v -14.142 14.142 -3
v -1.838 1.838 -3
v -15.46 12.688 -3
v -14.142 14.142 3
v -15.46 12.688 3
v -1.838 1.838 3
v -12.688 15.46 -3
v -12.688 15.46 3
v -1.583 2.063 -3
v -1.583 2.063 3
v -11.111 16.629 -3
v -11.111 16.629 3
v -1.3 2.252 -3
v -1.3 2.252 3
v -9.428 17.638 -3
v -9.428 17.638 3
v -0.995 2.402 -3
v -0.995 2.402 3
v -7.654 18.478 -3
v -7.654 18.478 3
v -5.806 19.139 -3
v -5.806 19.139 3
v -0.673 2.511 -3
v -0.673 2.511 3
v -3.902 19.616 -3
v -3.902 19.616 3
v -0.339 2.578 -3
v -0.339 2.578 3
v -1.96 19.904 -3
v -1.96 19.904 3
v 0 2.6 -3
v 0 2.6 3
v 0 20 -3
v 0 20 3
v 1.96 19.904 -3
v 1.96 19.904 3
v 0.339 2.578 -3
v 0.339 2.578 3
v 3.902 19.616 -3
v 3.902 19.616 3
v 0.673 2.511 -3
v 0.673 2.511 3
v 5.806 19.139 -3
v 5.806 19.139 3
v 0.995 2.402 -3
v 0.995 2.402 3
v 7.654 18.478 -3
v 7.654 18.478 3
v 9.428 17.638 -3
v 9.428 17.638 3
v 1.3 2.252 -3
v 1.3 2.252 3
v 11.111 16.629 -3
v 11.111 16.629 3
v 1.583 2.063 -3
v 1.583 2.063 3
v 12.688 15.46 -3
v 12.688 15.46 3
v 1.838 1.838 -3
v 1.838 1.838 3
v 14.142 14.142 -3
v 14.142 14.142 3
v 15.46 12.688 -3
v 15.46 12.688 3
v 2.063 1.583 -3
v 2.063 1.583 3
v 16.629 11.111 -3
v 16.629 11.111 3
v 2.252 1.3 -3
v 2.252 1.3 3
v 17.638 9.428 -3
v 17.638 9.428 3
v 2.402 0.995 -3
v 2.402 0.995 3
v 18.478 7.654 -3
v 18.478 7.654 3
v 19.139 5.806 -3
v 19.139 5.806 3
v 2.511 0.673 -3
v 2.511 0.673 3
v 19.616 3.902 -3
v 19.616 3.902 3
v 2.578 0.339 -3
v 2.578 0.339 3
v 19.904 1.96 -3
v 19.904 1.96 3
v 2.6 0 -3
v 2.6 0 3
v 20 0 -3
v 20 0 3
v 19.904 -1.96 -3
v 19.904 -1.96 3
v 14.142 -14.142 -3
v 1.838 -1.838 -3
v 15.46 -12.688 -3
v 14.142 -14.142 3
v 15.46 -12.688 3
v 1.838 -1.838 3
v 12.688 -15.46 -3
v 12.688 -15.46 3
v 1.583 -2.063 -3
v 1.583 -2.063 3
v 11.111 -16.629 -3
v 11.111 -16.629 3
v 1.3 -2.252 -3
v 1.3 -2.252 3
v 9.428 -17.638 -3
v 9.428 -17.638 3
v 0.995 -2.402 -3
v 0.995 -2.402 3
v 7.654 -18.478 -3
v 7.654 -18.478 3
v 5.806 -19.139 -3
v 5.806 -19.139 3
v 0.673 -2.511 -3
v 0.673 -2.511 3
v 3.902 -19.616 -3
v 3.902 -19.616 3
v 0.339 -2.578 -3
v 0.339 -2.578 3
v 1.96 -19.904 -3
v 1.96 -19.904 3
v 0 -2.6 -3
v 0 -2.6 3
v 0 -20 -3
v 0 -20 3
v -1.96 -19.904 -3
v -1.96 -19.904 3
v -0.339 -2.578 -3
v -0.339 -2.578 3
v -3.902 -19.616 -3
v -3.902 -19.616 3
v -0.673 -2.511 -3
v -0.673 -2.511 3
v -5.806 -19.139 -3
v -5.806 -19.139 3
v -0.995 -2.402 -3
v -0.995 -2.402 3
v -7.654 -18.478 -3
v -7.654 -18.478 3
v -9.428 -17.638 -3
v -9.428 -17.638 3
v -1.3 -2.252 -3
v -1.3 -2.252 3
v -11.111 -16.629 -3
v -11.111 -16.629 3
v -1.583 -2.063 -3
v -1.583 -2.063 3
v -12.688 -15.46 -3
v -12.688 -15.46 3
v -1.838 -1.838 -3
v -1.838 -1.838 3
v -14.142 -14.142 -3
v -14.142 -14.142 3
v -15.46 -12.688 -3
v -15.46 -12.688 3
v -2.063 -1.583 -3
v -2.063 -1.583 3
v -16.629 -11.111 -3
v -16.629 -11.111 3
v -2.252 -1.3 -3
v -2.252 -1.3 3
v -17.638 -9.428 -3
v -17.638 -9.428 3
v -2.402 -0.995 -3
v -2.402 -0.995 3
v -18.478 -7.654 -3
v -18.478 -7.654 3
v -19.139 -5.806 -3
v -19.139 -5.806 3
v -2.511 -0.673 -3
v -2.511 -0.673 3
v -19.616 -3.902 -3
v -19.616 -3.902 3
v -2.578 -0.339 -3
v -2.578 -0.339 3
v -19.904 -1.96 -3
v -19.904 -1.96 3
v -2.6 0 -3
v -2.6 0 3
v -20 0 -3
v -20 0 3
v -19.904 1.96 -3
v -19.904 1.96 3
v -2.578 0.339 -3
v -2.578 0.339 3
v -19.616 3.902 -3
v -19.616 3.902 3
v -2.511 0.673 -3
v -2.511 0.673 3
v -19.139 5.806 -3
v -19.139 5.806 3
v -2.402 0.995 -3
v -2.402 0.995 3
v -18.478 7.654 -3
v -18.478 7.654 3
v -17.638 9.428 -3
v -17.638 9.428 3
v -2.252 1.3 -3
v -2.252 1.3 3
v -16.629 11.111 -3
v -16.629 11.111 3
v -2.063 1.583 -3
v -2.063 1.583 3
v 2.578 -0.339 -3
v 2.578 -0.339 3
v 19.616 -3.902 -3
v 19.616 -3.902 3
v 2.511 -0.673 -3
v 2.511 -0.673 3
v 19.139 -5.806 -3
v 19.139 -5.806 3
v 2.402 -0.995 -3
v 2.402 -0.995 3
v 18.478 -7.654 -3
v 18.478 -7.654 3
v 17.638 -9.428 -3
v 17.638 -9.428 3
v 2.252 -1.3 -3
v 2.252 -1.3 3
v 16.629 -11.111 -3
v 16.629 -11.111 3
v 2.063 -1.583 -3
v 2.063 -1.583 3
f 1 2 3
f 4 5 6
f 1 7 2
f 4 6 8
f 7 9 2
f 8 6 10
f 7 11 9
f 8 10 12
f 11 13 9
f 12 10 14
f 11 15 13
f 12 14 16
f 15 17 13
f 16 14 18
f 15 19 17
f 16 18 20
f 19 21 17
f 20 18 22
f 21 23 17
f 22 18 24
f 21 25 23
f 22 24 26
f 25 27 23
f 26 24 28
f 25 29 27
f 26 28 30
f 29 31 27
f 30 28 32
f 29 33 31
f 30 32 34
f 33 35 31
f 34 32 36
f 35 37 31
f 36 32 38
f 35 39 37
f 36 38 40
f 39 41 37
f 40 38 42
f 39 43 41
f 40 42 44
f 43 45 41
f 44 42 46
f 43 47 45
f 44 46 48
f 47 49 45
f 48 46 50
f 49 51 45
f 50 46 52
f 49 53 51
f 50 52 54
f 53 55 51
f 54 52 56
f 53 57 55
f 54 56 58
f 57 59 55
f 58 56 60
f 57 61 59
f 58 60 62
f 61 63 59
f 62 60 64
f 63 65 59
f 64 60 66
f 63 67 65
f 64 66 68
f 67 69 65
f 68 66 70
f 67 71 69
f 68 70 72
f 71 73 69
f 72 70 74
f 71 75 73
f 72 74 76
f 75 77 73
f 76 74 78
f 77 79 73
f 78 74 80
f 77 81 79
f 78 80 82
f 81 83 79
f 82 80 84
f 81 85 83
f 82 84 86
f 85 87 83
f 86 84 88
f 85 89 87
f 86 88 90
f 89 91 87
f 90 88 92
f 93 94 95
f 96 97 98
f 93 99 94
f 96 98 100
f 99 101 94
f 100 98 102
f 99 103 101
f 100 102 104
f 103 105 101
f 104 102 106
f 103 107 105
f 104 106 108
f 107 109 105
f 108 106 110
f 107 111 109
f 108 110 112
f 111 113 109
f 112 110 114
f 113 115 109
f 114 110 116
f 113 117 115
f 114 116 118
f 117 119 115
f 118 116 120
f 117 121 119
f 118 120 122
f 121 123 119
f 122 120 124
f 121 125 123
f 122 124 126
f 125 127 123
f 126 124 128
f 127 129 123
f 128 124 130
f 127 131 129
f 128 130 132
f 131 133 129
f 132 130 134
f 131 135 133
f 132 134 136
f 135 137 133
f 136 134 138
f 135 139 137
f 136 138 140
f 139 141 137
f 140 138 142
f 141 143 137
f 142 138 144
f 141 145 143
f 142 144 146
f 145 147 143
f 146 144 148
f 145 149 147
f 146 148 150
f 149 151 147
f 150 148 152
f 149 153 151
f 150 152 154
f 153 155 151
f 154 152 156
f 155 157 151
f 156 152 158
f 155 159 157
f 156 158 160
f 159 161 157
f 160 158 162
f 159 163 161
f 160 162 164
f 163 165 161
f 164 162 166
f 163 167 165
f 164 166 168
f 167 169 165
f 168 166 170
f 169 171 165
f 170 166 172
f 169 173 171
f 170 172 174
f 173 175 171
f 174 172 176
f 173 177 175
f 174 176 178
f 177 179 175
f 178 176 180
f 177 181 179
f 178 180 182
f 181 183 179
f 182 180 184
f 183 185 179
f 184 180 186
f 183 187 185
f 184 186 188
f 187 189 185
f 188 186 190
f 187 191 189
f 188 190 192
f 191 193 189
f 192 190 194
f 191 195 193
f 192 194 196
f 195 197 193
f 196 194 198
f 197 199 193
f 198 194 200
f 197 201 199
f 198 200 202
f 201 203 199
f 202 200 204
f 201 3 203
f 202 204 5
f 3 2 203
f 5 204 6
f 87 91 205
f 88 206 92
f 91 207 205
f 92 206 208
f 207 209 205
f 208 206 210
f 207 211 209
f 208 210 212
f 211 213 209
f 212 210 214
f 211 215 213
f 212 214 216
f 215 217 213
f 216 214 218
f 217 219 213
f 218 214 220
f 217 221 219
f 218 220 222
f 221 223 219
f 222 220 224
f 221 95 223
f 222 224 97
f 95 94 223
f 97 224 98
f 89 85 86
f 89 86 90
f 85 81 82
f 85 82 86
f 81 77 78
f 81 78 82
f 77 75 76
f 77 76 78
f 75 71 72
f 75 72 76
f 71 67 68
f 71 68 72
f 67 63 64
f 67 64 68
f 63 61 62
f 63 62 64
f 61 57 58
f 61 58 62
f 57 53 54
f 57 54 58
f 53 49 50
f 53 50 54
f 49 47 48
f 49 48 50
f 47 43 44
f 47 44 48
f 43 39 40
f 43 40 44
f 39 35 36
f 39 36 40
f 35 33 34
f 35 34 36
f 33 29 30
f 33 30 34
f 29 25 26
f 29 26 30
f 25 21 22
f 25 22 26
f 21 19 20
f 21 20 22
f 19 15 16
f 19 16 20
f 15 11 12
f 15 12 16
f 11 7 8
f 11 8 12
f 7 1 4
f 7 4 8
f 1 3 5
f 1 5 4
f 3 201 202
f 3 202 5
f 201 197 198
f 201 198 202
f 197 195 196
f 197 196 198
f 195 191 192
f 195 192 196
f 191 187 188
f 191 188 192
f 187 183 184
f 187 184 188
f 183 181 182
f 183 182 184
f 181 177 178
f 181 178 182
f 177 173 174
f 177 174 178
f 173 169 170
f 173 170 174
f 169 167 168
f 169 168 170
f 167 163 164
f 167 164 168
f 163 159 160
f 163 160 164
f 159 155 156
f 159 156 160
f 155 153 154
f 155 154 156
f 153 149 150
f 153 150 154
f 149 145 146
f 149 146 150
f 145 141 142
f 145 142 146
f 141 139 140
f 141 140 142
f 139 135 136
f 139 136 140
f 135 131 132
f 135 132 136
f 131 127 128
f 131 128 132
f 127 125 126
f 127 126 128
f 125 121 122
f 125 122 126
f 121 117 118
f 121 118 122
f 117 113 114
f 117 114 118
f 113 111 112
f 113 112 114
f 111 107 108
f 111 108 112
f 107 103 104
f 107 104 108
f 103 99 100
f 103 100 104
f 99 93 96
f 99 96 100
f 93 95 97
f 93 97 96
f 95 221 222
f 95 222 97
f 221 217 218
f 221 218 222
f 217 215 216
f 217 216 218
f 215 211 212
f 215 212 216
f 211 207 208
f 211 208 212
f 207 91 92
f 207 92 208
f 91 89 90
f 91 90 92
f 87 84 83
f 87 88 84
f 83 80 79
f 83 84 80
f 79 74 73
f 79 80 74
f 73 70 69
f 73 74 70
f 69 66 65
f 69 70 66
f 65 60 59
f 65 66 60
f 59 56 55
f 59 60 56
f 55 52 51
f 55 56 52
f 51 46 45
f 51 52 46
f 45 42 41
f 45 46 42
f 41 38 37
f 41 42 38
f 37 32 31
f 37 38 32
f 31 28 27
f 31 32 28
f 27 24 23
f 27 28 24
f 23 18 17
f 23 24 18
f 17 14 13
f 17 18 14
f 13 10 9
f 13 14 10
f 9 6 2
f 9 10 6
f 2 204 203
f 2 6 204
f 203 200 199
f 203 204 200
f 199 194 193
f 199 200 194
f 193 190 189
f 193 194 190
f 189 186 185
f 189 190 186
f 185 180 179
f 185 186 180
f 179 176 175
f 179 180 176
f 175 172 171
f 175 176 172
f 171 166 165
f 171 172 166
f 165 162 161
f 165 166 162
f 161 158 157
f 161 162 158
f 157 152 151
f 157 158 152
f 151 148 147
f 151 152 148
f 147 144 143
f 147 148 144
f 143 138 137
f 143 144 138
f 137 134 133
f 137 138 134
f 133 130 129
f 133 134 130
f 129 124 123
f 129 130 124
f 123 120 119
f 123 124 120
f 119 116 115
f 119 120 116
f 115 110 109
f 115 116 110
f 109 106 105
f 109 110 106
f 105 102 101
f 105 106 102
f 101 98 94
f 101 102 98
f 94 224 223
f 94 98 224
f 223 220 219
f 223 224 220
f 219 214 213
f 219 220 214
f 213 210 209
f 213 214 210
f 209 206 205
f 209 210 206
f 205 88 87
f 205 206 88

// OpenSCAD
polyhedron(points=[[-14.142136, 14.142136, -3.0], [-15.460209, 12.687866, -3.0], [-1.838478, 1.838478, -3.0], [-14.142136, 14.142136, 3.0], [-15.460209, 12.687866, 3.0], [-1.838478, 1.838478, 3.0], [-12.687866, 15.460209, -3.0], [-12.687866, 15.460209, 3.0], [-1.58278, 2.062719, -3.0], [-1.58278, 2.062719, 3.0], [-11.111405, 16.629392, -3.0], [-11.111405, 16.629392, 3.0], [-1.3, 2.251666, -3.0], [-1.3, 2.251666, 3.0], [-9.427935, 17.638425, -3.0], [-9.427935, 17.638425, 3.0], [-0.994977, 2.402087, -3.0], [-0.994977, 2.402087, 3.0], [-7.653669, 18.477591, -3.0], [-7.653669, 18.477591, 3.0], [-5.805694, 19.138807, -3.0], [-5.805694, 19.138807, 3.0], [-0.67293, 2.511407, -3.0], [-0.67293, 2.511407, 3.0], [-3.901806, 19.615706, -3.0], [-3.901806, 19.615706, 3.0], [-0.339368, 2.577757, -3.0], [-0.339368, 2.577757, 3.0], [-1.960343, 19.903695, -3.0], [-1.960343, 19.903695, 3.0], [0.0, 2.6, -3.0], [0.0, 2.6, 3.0], [0.0, 20.0, -3.0], [0.0, 20.0, 3.0], [1.960343, 19.903695, -3.0], [1.960343, 19.903695, 3.0], [0.339368, 2.577757, -3.0], [0.339368, 2.577757, 3.0], [3.901806, 19.615706, -3.0], [3.901806, 19.615706, 3.0], [0.67293, 2.511407, -3.0], [0.67293, 2.511407, 3.0], [5.805694, 19.138807, -3.0], [5.805694, 19.138807, 3.0], [0.994977, 2.402087, -3.0], [0.994977, 2.402087, 3.0], [7.653669, 18.477591, -3.0], [7.653669, 18.477591, 3.0], [9.427935, 17.638425, -3.0], [9.427935, 17.638425, 3.0], [1.3, 2.251666, -3.0], [1.3, 2.251666, 3.0], [11.111405, 16.629392, -3.0], [11.111405, 16.629392, 3.0], [1.58278, 2.062719, -3.0], [1.58278, 2.062719, 3.0], [12.687866, 15.460209, -3.0], [12.687866, 15.460209, 3.0], [1.838478, 1.838478, -3.0], [1.838478, 1.838478, 3.0], [14.142136, 14.142136, -3.0], [14.142136, 14.142136, 3.0], [15.460209, 12.687866, -3.0], [15.460209, 12.687866, 3.0], [2.062719, 1.58278, -3.0], [2.062719, 1.58278, 3.0], [16.629392, 11.111405, -3.0], [16.629392, 11.111405, 3.0], [2.251666, 1.3, -3.0], [2.251666, 1.3, 3.0], [17.638425, 9.427935, -3.0], [17.638425, 9.427935, 3.0], [2.402087, 0.994977, -3.0], [2.402087, 0.994977, 3.0], [18.477591, 7.653669, -3.0], [18.477591, 7.653669, 3.0], [19.138807, 5.805694, -3.0], [19.138807, 5.805694, 3.0], [2.511407, 0.67293, -3.0], [2.511407, 0.67293, 3.0], [19.615706, 3.901806, -3.0], [19.615706, 3.901806, 3.0], [2.577757, 0.339368, -3.0], [2.577757, 0.339368, 3.0], [19.903695, 1.960343, -3.0], [19.903695, 1.960343, 3.0], [2.6, 0.0, -3.0], [2.6, 0.0, 3.0], [20.0, 0.0, -3.0], [20.0, 0.0, 3.0], [19.903695, -1.960343, -3.0], [19.903695, -1.960343, 3.0], [14.142136, -14.142136, -3.0], [15.460209, -12.687866, -3.0], [1.838478, -1.838478, -3.0], [14.142136, -14.142136, 3.0], [15.460209, -12.687866, 3.0], [1.838478, -1.838478, 3.0], [12.687866, -15.460209, -3.0], [12.687866, -15.460209, 3.0], [1.58278, -2.062719, -3.0], [1.58278, -2.062719, 3.0], [11.111405, -16.629392, -3.0], [11.111405, -16.629392, 3.0], [1.3, -2.251666, -3.0], [1.3, -2.251666, 3.0], [9.427935, -17.638425, -3.0], [9.427935, -17.638425, 3.0], [0.994977, -2.402087, -3.0], [0.994977, -2.402087, 3.0], [7.653669, -18.477591, -3.0], [7.653669, -18.477591, 3.0], [5.805694, -19.138807, -3.0], [5.805694, -19.138807, 3.0], [0.67293, -2.511407, -3.0], [0.67293, -2.511407, 3.0], [3.901806, -19.615706, -3.0], [3.901806, -19.615706, 3.0], [0.339368, -2.577757, -3.0], [0.339368, -2.577757, 3.0], [1.960343, -19.903695, -3.0], [1.960343, -19.903695, 3.0], [-0.0, -2.6, -3.0], [-0.0, -2.6, 3.0], [-0.0, -20.0, -3.0], [-0.0, -20.0, 3.0], [-1.960343, -19.903695, -3.0], [-1.960343, -19.903695, 3.0], [-0.339368, -2.577757, -3.0], [-0.339368, -2.577757, 3.0], [-3.901806, -19.615706, -3.0], [-3.901806, -19.615706, 3.0], [-0.67293, -2.511407, -3.0], [-0.67293, -2.511407, 3.0], [-5.805694, -19.138807, -3.0], [-5.805694, -19.138807, 3.0], [-0.994977, -2.402087, -3.0], [-0.994977, -2.402087, 3.0], [-7.653669, -18.477591, -3.0], [-7.653669, -18.477591, 3.0], [-9.427935, -17.638425, -3.0], [-9.427935, -17.638425, 3.0], [-1.3, -2.251666, -3.0], [-1.3, -2.251666, 3.0], [-11.111405, -16.629392, -3.0], [-11.111405, -16.629392, 3.0], [-1.58278, -2.062719, -3.0], [-1.58278, -2.062719, 3.0], [-12.687866, -15.460209, -3.0], [-12.687866, -15.460209, 3.0], [-1.838478, -1.838478, -3.0], [-1.838478, -1.838478, 3.0], [-14.142136, -14.142136, -3.0], [-14.142136, -14.142136, 3.0], [-15.460209, -12.687866, -3.0], [-15.460209, -12.687866, 3.0], [-2.062719, -1.58278, -3.0], [-2.062719, -1.58278, 3.0], [-16.629392, -11.111405, -3.0], [-16.629392, -11.111405, 3.0], [-2.251666, -1.3, -3.0], [-2.251666, -1.3, 3.0], [-17.638425, -9.427935, -3.0], [-17.638425, -9.427935, 3.0], [-2.402087, -0.994977, -3.0], [-2.402087, -0.994977, 3.0], [-18.477591, -7.653669, -3.0], [-18.477591, -7.653669, 3.0], [-19.138807, -5.805694, -3.0], [-19.138807, -5.805694, 3.0], [-2.511407, -0.67293, -3.0], [-2.511407, -0.67293, 3.0], [-19.615706, -3.901806, -3.0], [-19.615706, -3.901806, 3.0], [-2.577757, -0.339368, -3.0], [-2.577757, -0.339368, 3.0], [-19.903695, -1.960343, -3.0], [-19.903695, -1.960343, 3.0], [-2.6, 0.0, -3.0], [-2.6, 0.0, 3.0], [-20.0, 0.0, -3.0], [-20.0, 0.0, 3.0], [-19.903695, 1.960343, -3.0], [-19.903695, 1.960343, 3.0], [-2.577757, 0.339368, -3.0], [-2.577757, 0.339368, 3.0], [-19.615706, 3.901806, -3.0], [-19.615706, 3.901806, 3.0], [-2.511407, 0.67293, -3.0], [-2.511407, 0.67293, 3.0], [-19.138807, 5.805694, -3.0], [-19.138807, 5.805694, 3.0], [-2.402087, 0.994977, -3.0], [-2.402087, 0.994977, 3.0], [-18.477591, 7.653669, -3.0], [-18.477591, 7.653669, 3.0], [-17.638425, 9.427935, -3.0], [-17.638425, 9.427935, 3.0], [-2.251666, 1.3, -3.0], [-2.251666, 1.3, 3.0], [-16.629392, 11.111405, -3.0], [-16.629392, 11.111405, 3.0], [-2.062719, 1.58278, -3.0], [-2.062719, 1.58278, 3.0], [2.577757, -0.339368, -3.0], [2.577757, -0.339368, 3.0], [19.615706, -3.901806, -3.0], [19.615706, -3.901806, 3.0], [2.511407, -0.67293, -3.0], [2.511407, -0.67293, 3.0], [19.138807, -5.805694, -3.0], [19.138807, -5.805694, 3.0], [2.402087, -0.994977, -3.0], [2.402087, -0.994977, 3.0], [18.477591, -7.653669, -3.0], [18.477591, -7.653669, 3.0], [17.638425, -9.427935, -3.0], [17.638425, -9.427935, 3.0], [2.251666, -1.3, -3.0], [2.251666, -1.3, 3.0], [16.629392, -11.111405, -3.0], [16.629392, -11.111405, 3.0], [2.062719, -1.58278, -3.0], [2.062719, -1.58278, 3.0]], faces=[[0, 2, 1], [3, 4, 5], [0, 6, 2], [3, 5, 7], [6, 8, 2], [7, 5, 9], [6, 10, 8], [7, 9, 11], [10, 12, 8], [11, 9, 13], [10, 14, 12], [11, 13, 15], [14, 16, 12], [15, 13, 17], [14, 18, 16], [15, 17, 19], [18, 20, 16], [19, 17, 21], [20, 22, 16], [21, 17, 23], [20, 24, 22], [21, 23, 25], [24, 26, 22], [25, 23, 27], [24, 28, 26], [25, 27, 29], [28, 30, 26], [29, 27, 31], [28, 32, 30], [29, 31, 33], [32, 34, 30], [33, 31, 35], [34, 36, 30], [35, 31, 37], [34, 38, 36], [35, 37, 39], [38, 40, 36], [39, 37, 41], [38, 42, 40], [39, 41, 43], [42, 44, 40], [43, 41, 45], [42, 46, 44], [43, 45, 47], [46, 48, 44], [47, 45, 49], [48, 50, 44], [49, 45, 51], [48, 52, 50], [49, 51, 53], [52, 54, 50], [53, 51, 55], [52, 56, 54], [53, 55, 57], [56, 58, 54], [57, 55, 59], [56, 60, 58], [57, 59, 61], [60, 62, 58], [61, 59, 63], [62, 64, 58], [63, 59, 65], [62, 66, 64], [63, 65, 67], [66, 68, 64], [67, 65, 69], [66, 70, 68], [67, 69, 71], [70, 72, 68], [71, 69, 73], [70, 74, 72], [71, 73, 75], [74, 76, 72], [75, 73, 77], [76, 78, 72], [77, 73, 79], [76, 80, 78], [77, 79, 81], [80, 82, 78], [81, 79, 83], [80, 84, 82], [81, 83, 85], [84, 86, 82], [85, 83, 87], [84, 88, 86], [85, 87, 89], [88, 90, 86], [89, 87, 91], [92, 94, 93], [95, 96, 97], [92, 98, 94], [95, 97, 99], [98, 100, 94], [99, 97, 101], [98, 102, 100], [99, 101, 103], [102, 104, 100], [103, 101, 105], [102, 106, 104], [103, 105, 107], [106, 108, 104], [107, 105, 109], [106, 110, 108], [107, 109, 111], [110, 112, 108], [111, 109, 113], [112, 114, 108], [113, 109, 115], [112, 116, 114], [113, 115, 117], [116, 118, 114], [117, 115, 119], [116, 120, 118], [117, 119, 121], [120, 122, 118], [121, 119, 123], [120, 124, 122], [121, 123, 125], [124, 126, 122], [125, 123, 127], [126, 128, 122], [127, 123, 129], [126, 130, 128], [127, 129, 131], [130, 132, 128], [131, 129, 133], [130, 134, 132], [131, 133, 135], [134, 136, 132], [135, 133, 137], [134, 138, 136], [135, 137, 139], [138, 140, 136], [139, 137, 141], [140, 142, 136], [141, 137, 143], [140, 144, 142], [141, 143, 145], [144, 146, 142], [145, 143, 147], [144, 148, 146], [145, 147, 149], [148, 150, 146], [149, 147, 151], [148, 152, 150], [149, 151, 153], [152, 154, 150], [153, 151, 155], [154, 156, 150], [155, 151, 157], [154, 158, 156], [155, 157, 159], [158, 160, 156], [159, 157, 161], [158, 162, 160], [159, 161, 163], [162, 164, 160], [163, 161, 165], [162, 166, 164], [163, 165, 167], [166, 168, 164], [167, 165, 169], [168, 170, 164], [169, 165, 171], [168, 172, 170], [169, 171, 173], [172, 174, 170], [173, 171, 175], [172, 176, 174], [173, 175, 177], [176, 178, 174], [177, 175, 179], [176, 180, 178], [177, 179, 181], [180, 182, 178], [181, 179, 183], [182, 184, 178], [183, 179, 185], [182, 186, 184], [183, 185, 187], [186, 188, 184], [187, 185, 189], [186, 190, 188], [187, 189, 191], [190, 192, 188], [191, 189, 193], [190, 194, 192], [191, 193, 195], [194, 196, 192], [195, 193, 197], [196, 198, 192], [197, 193, 199], [196, 200, 198], [197, 199, 201], [200, 202, 198], [201, 199, 203], [200, 1, 202], [201, 203, 4], [1, 2, 202], [4, 203, 5], [86, 90, 204], [87, 205, 91], [90, 206, 204], [91, 205, 207], [206, 208, 204], [207, 205, 209], [206, 210, 208], [207, 209, 211], [210, 212, 208], [211, 209, 213], [210, 214, 212], [211, 213, 215], [214, 216, 212], [215, 213, 217], [216, 218, 212], [217, 213, 219], [216, 220, 218], [217, 219, 221], [220, 222, 218], [221, 219, 223], [220, 93, 222], [221, 223, 96], [93, 94, 222], [96, 223, 97], [88, 84, 85], [88, 85, 89], [84, 80, 81], [84, 81, 85], [80, 76, 77], [80, 77, 81], [76, 74, 75], [76, 75, 77], [74, 70, 71], [74, 71, 75], [70, 66, 67], [70, 67, 71], [66, 62, 63], [66, 63, 67], [62, 60, 61], [62, 61, 63], [60, 56, 57], [60, 57, 61], [56, 52, 53], [56, 53, 57], [52, 48, 49], [52, 49, 53], [48, 46, 47], [48, 47, 49], [46, 42, 43], [46, 43, 47], [42, 38, 39], [42, 39, 43], [38, 34, 35], [38, 35, 39], [34, 32, 33], [34, 33, 35], [32, 28, 29], [32, 29, 33], [28, 24, 25], [28, 25, 29], [24, 20, 21], [24, 21, 25], [20, 18, 19], [20, 19, 21], [18, 14, 15], [18, 15, 19], [14, 10, 11], [14, 11, 15], [10, 6, 7], [10, 7, 11], [6, 0, 3], [6, 3, 7], [0, 1, 4], [0, 4, 3], [1, 200, 201], [1, 201, 4], [200, 196, 197], [200, 197, 201], [196, 194, 195], [196, 195, 197], [194, 190, 191], [194, 191, 195], [190, 186, 187], [190, 187, 191], [186, 182, 183], [186, 183, 187], [182, 180, 181], [182, 181, 183], [180, 176, 177], [180, 177, 181], [176, 172, 173], [176, 173, 177], [172, 168, 169], [172, 169, 173], [168, 166, 167], [168, 167, 169], [166, 162, 163], [166, 163, 167], [162, 158, 159], [162, 159, 163], [158, 154, 155], [158, 155, 159], [154, 152, 153], [154, 153, 155], [152, 148, 149], [152, 149, 153], [148, 144, 145], [148, 145, 149], [144, 140, 141], [144, 141, 145], [140, 138, 139], [140, 139, 141], [138, 134, 135], [138, 135, 139], [134, 130, 131], [134, 131, 135], [130, 126, 127], [130, 127, 131], [126, 124, 125], [126, 125, 127], [124, 120, 121], [124, 121, 125], [120, 116, 117], [120, 117, 121], [116, 112, 113], [116, 113, 117], [112, 110, 111], [112, 111, 113], [110, 106, 107], [110, 107, 111], [106, 102, 103], [106, 103, 107], [102, 98, 99], [102, 99, 103], [98, 92, 95], [98, 95, 99], [92, 93, 96], [92, 96, 95], [93, 220, 221], [93, 221, 96], [220, 216, 217], [220, 217, 221], [216, 214, 215], [216, 215, 217], [214, 210, 211], [214, 211, 215], [210, 206, 207], [210, 207, 211], [206, 90, 91], [206, 91, 207], [90, 88, 89], [90, 89, 91], [86, 83, 82], [86, 87, 83], [82, 79, 78], [82, 83, 79], [78, 73, 72], [78, 79, 73], [72, 69, 68], [72, 73, 69], [68, 65, 64], [68, 69, 65], [64, 59, 58], [64, 65, 59], [58, 55, 54], [58, 59, 55], [54, 51, 50], [54, 55, 51], [50, 45, 44], [50, 51, 45], [44, 41, 40], [44, 45, 41], [40, 37, 36], [40, 41, 37], [36, 31, 30], [36, 37, 31], [30, 27, 26], [30, 31, 27], [26, 23, 22], [26, 27, 23], [22, 17, 16], [22, 23, 17], [16, 13, 12], [16, 17, 13], [12, 9, 8], [12, 13, 9], [8, 5, 2], [8, 9, 5], [2, 203, 202], [2, 5, 203], [202, 199, 198], [202, 203, 199], [198, 193, 192], [198, 199, 193], [192, 189, 188], [192, 193, 189], [188, 185, 184], [188, 189, 185], [184, 179, 178], [184, 185, 179], [178, 175, 174], [178, 179, 175], [174, 171, 170], [174, 175, 171], [170, 165, 164], [170, 171, 165], [164, 161, 160], [164, 165, 161], [160, 157, 156], [160, 161, 157], [156, 151, 150], [156, 157, 151], [150, 147, 146], [150, 151, 147], [146, 143, 142], [146, 147, 143], [142, 137, 136], [142, 143, 137], [136, 133, 132], [136, 137, 133], [132, 129, 128], [132, 133, 129], [128, 123, 122], [128, 129, 123], [122, 119, 118], [122, 123, 119], [118, 115, 114], [118, 119, 115], [114, 109, 108], [114, 115, 109], [108, 105, 104], [108, 109, 105], [104, 101, 100], [104, 105, 101], [100, 97, 94], [100, 101, 97], [94, 223, 222], [94, 97, 223], [222, 219, 218], [222, 223, 219], [218, 213, 212], [218, 219, 213], [212, 209, 208], [212, 213, 209], [208, 205, 204], [208, 209, 205], [204, 87, 86], [204, 205, 87]], convexity=20);
